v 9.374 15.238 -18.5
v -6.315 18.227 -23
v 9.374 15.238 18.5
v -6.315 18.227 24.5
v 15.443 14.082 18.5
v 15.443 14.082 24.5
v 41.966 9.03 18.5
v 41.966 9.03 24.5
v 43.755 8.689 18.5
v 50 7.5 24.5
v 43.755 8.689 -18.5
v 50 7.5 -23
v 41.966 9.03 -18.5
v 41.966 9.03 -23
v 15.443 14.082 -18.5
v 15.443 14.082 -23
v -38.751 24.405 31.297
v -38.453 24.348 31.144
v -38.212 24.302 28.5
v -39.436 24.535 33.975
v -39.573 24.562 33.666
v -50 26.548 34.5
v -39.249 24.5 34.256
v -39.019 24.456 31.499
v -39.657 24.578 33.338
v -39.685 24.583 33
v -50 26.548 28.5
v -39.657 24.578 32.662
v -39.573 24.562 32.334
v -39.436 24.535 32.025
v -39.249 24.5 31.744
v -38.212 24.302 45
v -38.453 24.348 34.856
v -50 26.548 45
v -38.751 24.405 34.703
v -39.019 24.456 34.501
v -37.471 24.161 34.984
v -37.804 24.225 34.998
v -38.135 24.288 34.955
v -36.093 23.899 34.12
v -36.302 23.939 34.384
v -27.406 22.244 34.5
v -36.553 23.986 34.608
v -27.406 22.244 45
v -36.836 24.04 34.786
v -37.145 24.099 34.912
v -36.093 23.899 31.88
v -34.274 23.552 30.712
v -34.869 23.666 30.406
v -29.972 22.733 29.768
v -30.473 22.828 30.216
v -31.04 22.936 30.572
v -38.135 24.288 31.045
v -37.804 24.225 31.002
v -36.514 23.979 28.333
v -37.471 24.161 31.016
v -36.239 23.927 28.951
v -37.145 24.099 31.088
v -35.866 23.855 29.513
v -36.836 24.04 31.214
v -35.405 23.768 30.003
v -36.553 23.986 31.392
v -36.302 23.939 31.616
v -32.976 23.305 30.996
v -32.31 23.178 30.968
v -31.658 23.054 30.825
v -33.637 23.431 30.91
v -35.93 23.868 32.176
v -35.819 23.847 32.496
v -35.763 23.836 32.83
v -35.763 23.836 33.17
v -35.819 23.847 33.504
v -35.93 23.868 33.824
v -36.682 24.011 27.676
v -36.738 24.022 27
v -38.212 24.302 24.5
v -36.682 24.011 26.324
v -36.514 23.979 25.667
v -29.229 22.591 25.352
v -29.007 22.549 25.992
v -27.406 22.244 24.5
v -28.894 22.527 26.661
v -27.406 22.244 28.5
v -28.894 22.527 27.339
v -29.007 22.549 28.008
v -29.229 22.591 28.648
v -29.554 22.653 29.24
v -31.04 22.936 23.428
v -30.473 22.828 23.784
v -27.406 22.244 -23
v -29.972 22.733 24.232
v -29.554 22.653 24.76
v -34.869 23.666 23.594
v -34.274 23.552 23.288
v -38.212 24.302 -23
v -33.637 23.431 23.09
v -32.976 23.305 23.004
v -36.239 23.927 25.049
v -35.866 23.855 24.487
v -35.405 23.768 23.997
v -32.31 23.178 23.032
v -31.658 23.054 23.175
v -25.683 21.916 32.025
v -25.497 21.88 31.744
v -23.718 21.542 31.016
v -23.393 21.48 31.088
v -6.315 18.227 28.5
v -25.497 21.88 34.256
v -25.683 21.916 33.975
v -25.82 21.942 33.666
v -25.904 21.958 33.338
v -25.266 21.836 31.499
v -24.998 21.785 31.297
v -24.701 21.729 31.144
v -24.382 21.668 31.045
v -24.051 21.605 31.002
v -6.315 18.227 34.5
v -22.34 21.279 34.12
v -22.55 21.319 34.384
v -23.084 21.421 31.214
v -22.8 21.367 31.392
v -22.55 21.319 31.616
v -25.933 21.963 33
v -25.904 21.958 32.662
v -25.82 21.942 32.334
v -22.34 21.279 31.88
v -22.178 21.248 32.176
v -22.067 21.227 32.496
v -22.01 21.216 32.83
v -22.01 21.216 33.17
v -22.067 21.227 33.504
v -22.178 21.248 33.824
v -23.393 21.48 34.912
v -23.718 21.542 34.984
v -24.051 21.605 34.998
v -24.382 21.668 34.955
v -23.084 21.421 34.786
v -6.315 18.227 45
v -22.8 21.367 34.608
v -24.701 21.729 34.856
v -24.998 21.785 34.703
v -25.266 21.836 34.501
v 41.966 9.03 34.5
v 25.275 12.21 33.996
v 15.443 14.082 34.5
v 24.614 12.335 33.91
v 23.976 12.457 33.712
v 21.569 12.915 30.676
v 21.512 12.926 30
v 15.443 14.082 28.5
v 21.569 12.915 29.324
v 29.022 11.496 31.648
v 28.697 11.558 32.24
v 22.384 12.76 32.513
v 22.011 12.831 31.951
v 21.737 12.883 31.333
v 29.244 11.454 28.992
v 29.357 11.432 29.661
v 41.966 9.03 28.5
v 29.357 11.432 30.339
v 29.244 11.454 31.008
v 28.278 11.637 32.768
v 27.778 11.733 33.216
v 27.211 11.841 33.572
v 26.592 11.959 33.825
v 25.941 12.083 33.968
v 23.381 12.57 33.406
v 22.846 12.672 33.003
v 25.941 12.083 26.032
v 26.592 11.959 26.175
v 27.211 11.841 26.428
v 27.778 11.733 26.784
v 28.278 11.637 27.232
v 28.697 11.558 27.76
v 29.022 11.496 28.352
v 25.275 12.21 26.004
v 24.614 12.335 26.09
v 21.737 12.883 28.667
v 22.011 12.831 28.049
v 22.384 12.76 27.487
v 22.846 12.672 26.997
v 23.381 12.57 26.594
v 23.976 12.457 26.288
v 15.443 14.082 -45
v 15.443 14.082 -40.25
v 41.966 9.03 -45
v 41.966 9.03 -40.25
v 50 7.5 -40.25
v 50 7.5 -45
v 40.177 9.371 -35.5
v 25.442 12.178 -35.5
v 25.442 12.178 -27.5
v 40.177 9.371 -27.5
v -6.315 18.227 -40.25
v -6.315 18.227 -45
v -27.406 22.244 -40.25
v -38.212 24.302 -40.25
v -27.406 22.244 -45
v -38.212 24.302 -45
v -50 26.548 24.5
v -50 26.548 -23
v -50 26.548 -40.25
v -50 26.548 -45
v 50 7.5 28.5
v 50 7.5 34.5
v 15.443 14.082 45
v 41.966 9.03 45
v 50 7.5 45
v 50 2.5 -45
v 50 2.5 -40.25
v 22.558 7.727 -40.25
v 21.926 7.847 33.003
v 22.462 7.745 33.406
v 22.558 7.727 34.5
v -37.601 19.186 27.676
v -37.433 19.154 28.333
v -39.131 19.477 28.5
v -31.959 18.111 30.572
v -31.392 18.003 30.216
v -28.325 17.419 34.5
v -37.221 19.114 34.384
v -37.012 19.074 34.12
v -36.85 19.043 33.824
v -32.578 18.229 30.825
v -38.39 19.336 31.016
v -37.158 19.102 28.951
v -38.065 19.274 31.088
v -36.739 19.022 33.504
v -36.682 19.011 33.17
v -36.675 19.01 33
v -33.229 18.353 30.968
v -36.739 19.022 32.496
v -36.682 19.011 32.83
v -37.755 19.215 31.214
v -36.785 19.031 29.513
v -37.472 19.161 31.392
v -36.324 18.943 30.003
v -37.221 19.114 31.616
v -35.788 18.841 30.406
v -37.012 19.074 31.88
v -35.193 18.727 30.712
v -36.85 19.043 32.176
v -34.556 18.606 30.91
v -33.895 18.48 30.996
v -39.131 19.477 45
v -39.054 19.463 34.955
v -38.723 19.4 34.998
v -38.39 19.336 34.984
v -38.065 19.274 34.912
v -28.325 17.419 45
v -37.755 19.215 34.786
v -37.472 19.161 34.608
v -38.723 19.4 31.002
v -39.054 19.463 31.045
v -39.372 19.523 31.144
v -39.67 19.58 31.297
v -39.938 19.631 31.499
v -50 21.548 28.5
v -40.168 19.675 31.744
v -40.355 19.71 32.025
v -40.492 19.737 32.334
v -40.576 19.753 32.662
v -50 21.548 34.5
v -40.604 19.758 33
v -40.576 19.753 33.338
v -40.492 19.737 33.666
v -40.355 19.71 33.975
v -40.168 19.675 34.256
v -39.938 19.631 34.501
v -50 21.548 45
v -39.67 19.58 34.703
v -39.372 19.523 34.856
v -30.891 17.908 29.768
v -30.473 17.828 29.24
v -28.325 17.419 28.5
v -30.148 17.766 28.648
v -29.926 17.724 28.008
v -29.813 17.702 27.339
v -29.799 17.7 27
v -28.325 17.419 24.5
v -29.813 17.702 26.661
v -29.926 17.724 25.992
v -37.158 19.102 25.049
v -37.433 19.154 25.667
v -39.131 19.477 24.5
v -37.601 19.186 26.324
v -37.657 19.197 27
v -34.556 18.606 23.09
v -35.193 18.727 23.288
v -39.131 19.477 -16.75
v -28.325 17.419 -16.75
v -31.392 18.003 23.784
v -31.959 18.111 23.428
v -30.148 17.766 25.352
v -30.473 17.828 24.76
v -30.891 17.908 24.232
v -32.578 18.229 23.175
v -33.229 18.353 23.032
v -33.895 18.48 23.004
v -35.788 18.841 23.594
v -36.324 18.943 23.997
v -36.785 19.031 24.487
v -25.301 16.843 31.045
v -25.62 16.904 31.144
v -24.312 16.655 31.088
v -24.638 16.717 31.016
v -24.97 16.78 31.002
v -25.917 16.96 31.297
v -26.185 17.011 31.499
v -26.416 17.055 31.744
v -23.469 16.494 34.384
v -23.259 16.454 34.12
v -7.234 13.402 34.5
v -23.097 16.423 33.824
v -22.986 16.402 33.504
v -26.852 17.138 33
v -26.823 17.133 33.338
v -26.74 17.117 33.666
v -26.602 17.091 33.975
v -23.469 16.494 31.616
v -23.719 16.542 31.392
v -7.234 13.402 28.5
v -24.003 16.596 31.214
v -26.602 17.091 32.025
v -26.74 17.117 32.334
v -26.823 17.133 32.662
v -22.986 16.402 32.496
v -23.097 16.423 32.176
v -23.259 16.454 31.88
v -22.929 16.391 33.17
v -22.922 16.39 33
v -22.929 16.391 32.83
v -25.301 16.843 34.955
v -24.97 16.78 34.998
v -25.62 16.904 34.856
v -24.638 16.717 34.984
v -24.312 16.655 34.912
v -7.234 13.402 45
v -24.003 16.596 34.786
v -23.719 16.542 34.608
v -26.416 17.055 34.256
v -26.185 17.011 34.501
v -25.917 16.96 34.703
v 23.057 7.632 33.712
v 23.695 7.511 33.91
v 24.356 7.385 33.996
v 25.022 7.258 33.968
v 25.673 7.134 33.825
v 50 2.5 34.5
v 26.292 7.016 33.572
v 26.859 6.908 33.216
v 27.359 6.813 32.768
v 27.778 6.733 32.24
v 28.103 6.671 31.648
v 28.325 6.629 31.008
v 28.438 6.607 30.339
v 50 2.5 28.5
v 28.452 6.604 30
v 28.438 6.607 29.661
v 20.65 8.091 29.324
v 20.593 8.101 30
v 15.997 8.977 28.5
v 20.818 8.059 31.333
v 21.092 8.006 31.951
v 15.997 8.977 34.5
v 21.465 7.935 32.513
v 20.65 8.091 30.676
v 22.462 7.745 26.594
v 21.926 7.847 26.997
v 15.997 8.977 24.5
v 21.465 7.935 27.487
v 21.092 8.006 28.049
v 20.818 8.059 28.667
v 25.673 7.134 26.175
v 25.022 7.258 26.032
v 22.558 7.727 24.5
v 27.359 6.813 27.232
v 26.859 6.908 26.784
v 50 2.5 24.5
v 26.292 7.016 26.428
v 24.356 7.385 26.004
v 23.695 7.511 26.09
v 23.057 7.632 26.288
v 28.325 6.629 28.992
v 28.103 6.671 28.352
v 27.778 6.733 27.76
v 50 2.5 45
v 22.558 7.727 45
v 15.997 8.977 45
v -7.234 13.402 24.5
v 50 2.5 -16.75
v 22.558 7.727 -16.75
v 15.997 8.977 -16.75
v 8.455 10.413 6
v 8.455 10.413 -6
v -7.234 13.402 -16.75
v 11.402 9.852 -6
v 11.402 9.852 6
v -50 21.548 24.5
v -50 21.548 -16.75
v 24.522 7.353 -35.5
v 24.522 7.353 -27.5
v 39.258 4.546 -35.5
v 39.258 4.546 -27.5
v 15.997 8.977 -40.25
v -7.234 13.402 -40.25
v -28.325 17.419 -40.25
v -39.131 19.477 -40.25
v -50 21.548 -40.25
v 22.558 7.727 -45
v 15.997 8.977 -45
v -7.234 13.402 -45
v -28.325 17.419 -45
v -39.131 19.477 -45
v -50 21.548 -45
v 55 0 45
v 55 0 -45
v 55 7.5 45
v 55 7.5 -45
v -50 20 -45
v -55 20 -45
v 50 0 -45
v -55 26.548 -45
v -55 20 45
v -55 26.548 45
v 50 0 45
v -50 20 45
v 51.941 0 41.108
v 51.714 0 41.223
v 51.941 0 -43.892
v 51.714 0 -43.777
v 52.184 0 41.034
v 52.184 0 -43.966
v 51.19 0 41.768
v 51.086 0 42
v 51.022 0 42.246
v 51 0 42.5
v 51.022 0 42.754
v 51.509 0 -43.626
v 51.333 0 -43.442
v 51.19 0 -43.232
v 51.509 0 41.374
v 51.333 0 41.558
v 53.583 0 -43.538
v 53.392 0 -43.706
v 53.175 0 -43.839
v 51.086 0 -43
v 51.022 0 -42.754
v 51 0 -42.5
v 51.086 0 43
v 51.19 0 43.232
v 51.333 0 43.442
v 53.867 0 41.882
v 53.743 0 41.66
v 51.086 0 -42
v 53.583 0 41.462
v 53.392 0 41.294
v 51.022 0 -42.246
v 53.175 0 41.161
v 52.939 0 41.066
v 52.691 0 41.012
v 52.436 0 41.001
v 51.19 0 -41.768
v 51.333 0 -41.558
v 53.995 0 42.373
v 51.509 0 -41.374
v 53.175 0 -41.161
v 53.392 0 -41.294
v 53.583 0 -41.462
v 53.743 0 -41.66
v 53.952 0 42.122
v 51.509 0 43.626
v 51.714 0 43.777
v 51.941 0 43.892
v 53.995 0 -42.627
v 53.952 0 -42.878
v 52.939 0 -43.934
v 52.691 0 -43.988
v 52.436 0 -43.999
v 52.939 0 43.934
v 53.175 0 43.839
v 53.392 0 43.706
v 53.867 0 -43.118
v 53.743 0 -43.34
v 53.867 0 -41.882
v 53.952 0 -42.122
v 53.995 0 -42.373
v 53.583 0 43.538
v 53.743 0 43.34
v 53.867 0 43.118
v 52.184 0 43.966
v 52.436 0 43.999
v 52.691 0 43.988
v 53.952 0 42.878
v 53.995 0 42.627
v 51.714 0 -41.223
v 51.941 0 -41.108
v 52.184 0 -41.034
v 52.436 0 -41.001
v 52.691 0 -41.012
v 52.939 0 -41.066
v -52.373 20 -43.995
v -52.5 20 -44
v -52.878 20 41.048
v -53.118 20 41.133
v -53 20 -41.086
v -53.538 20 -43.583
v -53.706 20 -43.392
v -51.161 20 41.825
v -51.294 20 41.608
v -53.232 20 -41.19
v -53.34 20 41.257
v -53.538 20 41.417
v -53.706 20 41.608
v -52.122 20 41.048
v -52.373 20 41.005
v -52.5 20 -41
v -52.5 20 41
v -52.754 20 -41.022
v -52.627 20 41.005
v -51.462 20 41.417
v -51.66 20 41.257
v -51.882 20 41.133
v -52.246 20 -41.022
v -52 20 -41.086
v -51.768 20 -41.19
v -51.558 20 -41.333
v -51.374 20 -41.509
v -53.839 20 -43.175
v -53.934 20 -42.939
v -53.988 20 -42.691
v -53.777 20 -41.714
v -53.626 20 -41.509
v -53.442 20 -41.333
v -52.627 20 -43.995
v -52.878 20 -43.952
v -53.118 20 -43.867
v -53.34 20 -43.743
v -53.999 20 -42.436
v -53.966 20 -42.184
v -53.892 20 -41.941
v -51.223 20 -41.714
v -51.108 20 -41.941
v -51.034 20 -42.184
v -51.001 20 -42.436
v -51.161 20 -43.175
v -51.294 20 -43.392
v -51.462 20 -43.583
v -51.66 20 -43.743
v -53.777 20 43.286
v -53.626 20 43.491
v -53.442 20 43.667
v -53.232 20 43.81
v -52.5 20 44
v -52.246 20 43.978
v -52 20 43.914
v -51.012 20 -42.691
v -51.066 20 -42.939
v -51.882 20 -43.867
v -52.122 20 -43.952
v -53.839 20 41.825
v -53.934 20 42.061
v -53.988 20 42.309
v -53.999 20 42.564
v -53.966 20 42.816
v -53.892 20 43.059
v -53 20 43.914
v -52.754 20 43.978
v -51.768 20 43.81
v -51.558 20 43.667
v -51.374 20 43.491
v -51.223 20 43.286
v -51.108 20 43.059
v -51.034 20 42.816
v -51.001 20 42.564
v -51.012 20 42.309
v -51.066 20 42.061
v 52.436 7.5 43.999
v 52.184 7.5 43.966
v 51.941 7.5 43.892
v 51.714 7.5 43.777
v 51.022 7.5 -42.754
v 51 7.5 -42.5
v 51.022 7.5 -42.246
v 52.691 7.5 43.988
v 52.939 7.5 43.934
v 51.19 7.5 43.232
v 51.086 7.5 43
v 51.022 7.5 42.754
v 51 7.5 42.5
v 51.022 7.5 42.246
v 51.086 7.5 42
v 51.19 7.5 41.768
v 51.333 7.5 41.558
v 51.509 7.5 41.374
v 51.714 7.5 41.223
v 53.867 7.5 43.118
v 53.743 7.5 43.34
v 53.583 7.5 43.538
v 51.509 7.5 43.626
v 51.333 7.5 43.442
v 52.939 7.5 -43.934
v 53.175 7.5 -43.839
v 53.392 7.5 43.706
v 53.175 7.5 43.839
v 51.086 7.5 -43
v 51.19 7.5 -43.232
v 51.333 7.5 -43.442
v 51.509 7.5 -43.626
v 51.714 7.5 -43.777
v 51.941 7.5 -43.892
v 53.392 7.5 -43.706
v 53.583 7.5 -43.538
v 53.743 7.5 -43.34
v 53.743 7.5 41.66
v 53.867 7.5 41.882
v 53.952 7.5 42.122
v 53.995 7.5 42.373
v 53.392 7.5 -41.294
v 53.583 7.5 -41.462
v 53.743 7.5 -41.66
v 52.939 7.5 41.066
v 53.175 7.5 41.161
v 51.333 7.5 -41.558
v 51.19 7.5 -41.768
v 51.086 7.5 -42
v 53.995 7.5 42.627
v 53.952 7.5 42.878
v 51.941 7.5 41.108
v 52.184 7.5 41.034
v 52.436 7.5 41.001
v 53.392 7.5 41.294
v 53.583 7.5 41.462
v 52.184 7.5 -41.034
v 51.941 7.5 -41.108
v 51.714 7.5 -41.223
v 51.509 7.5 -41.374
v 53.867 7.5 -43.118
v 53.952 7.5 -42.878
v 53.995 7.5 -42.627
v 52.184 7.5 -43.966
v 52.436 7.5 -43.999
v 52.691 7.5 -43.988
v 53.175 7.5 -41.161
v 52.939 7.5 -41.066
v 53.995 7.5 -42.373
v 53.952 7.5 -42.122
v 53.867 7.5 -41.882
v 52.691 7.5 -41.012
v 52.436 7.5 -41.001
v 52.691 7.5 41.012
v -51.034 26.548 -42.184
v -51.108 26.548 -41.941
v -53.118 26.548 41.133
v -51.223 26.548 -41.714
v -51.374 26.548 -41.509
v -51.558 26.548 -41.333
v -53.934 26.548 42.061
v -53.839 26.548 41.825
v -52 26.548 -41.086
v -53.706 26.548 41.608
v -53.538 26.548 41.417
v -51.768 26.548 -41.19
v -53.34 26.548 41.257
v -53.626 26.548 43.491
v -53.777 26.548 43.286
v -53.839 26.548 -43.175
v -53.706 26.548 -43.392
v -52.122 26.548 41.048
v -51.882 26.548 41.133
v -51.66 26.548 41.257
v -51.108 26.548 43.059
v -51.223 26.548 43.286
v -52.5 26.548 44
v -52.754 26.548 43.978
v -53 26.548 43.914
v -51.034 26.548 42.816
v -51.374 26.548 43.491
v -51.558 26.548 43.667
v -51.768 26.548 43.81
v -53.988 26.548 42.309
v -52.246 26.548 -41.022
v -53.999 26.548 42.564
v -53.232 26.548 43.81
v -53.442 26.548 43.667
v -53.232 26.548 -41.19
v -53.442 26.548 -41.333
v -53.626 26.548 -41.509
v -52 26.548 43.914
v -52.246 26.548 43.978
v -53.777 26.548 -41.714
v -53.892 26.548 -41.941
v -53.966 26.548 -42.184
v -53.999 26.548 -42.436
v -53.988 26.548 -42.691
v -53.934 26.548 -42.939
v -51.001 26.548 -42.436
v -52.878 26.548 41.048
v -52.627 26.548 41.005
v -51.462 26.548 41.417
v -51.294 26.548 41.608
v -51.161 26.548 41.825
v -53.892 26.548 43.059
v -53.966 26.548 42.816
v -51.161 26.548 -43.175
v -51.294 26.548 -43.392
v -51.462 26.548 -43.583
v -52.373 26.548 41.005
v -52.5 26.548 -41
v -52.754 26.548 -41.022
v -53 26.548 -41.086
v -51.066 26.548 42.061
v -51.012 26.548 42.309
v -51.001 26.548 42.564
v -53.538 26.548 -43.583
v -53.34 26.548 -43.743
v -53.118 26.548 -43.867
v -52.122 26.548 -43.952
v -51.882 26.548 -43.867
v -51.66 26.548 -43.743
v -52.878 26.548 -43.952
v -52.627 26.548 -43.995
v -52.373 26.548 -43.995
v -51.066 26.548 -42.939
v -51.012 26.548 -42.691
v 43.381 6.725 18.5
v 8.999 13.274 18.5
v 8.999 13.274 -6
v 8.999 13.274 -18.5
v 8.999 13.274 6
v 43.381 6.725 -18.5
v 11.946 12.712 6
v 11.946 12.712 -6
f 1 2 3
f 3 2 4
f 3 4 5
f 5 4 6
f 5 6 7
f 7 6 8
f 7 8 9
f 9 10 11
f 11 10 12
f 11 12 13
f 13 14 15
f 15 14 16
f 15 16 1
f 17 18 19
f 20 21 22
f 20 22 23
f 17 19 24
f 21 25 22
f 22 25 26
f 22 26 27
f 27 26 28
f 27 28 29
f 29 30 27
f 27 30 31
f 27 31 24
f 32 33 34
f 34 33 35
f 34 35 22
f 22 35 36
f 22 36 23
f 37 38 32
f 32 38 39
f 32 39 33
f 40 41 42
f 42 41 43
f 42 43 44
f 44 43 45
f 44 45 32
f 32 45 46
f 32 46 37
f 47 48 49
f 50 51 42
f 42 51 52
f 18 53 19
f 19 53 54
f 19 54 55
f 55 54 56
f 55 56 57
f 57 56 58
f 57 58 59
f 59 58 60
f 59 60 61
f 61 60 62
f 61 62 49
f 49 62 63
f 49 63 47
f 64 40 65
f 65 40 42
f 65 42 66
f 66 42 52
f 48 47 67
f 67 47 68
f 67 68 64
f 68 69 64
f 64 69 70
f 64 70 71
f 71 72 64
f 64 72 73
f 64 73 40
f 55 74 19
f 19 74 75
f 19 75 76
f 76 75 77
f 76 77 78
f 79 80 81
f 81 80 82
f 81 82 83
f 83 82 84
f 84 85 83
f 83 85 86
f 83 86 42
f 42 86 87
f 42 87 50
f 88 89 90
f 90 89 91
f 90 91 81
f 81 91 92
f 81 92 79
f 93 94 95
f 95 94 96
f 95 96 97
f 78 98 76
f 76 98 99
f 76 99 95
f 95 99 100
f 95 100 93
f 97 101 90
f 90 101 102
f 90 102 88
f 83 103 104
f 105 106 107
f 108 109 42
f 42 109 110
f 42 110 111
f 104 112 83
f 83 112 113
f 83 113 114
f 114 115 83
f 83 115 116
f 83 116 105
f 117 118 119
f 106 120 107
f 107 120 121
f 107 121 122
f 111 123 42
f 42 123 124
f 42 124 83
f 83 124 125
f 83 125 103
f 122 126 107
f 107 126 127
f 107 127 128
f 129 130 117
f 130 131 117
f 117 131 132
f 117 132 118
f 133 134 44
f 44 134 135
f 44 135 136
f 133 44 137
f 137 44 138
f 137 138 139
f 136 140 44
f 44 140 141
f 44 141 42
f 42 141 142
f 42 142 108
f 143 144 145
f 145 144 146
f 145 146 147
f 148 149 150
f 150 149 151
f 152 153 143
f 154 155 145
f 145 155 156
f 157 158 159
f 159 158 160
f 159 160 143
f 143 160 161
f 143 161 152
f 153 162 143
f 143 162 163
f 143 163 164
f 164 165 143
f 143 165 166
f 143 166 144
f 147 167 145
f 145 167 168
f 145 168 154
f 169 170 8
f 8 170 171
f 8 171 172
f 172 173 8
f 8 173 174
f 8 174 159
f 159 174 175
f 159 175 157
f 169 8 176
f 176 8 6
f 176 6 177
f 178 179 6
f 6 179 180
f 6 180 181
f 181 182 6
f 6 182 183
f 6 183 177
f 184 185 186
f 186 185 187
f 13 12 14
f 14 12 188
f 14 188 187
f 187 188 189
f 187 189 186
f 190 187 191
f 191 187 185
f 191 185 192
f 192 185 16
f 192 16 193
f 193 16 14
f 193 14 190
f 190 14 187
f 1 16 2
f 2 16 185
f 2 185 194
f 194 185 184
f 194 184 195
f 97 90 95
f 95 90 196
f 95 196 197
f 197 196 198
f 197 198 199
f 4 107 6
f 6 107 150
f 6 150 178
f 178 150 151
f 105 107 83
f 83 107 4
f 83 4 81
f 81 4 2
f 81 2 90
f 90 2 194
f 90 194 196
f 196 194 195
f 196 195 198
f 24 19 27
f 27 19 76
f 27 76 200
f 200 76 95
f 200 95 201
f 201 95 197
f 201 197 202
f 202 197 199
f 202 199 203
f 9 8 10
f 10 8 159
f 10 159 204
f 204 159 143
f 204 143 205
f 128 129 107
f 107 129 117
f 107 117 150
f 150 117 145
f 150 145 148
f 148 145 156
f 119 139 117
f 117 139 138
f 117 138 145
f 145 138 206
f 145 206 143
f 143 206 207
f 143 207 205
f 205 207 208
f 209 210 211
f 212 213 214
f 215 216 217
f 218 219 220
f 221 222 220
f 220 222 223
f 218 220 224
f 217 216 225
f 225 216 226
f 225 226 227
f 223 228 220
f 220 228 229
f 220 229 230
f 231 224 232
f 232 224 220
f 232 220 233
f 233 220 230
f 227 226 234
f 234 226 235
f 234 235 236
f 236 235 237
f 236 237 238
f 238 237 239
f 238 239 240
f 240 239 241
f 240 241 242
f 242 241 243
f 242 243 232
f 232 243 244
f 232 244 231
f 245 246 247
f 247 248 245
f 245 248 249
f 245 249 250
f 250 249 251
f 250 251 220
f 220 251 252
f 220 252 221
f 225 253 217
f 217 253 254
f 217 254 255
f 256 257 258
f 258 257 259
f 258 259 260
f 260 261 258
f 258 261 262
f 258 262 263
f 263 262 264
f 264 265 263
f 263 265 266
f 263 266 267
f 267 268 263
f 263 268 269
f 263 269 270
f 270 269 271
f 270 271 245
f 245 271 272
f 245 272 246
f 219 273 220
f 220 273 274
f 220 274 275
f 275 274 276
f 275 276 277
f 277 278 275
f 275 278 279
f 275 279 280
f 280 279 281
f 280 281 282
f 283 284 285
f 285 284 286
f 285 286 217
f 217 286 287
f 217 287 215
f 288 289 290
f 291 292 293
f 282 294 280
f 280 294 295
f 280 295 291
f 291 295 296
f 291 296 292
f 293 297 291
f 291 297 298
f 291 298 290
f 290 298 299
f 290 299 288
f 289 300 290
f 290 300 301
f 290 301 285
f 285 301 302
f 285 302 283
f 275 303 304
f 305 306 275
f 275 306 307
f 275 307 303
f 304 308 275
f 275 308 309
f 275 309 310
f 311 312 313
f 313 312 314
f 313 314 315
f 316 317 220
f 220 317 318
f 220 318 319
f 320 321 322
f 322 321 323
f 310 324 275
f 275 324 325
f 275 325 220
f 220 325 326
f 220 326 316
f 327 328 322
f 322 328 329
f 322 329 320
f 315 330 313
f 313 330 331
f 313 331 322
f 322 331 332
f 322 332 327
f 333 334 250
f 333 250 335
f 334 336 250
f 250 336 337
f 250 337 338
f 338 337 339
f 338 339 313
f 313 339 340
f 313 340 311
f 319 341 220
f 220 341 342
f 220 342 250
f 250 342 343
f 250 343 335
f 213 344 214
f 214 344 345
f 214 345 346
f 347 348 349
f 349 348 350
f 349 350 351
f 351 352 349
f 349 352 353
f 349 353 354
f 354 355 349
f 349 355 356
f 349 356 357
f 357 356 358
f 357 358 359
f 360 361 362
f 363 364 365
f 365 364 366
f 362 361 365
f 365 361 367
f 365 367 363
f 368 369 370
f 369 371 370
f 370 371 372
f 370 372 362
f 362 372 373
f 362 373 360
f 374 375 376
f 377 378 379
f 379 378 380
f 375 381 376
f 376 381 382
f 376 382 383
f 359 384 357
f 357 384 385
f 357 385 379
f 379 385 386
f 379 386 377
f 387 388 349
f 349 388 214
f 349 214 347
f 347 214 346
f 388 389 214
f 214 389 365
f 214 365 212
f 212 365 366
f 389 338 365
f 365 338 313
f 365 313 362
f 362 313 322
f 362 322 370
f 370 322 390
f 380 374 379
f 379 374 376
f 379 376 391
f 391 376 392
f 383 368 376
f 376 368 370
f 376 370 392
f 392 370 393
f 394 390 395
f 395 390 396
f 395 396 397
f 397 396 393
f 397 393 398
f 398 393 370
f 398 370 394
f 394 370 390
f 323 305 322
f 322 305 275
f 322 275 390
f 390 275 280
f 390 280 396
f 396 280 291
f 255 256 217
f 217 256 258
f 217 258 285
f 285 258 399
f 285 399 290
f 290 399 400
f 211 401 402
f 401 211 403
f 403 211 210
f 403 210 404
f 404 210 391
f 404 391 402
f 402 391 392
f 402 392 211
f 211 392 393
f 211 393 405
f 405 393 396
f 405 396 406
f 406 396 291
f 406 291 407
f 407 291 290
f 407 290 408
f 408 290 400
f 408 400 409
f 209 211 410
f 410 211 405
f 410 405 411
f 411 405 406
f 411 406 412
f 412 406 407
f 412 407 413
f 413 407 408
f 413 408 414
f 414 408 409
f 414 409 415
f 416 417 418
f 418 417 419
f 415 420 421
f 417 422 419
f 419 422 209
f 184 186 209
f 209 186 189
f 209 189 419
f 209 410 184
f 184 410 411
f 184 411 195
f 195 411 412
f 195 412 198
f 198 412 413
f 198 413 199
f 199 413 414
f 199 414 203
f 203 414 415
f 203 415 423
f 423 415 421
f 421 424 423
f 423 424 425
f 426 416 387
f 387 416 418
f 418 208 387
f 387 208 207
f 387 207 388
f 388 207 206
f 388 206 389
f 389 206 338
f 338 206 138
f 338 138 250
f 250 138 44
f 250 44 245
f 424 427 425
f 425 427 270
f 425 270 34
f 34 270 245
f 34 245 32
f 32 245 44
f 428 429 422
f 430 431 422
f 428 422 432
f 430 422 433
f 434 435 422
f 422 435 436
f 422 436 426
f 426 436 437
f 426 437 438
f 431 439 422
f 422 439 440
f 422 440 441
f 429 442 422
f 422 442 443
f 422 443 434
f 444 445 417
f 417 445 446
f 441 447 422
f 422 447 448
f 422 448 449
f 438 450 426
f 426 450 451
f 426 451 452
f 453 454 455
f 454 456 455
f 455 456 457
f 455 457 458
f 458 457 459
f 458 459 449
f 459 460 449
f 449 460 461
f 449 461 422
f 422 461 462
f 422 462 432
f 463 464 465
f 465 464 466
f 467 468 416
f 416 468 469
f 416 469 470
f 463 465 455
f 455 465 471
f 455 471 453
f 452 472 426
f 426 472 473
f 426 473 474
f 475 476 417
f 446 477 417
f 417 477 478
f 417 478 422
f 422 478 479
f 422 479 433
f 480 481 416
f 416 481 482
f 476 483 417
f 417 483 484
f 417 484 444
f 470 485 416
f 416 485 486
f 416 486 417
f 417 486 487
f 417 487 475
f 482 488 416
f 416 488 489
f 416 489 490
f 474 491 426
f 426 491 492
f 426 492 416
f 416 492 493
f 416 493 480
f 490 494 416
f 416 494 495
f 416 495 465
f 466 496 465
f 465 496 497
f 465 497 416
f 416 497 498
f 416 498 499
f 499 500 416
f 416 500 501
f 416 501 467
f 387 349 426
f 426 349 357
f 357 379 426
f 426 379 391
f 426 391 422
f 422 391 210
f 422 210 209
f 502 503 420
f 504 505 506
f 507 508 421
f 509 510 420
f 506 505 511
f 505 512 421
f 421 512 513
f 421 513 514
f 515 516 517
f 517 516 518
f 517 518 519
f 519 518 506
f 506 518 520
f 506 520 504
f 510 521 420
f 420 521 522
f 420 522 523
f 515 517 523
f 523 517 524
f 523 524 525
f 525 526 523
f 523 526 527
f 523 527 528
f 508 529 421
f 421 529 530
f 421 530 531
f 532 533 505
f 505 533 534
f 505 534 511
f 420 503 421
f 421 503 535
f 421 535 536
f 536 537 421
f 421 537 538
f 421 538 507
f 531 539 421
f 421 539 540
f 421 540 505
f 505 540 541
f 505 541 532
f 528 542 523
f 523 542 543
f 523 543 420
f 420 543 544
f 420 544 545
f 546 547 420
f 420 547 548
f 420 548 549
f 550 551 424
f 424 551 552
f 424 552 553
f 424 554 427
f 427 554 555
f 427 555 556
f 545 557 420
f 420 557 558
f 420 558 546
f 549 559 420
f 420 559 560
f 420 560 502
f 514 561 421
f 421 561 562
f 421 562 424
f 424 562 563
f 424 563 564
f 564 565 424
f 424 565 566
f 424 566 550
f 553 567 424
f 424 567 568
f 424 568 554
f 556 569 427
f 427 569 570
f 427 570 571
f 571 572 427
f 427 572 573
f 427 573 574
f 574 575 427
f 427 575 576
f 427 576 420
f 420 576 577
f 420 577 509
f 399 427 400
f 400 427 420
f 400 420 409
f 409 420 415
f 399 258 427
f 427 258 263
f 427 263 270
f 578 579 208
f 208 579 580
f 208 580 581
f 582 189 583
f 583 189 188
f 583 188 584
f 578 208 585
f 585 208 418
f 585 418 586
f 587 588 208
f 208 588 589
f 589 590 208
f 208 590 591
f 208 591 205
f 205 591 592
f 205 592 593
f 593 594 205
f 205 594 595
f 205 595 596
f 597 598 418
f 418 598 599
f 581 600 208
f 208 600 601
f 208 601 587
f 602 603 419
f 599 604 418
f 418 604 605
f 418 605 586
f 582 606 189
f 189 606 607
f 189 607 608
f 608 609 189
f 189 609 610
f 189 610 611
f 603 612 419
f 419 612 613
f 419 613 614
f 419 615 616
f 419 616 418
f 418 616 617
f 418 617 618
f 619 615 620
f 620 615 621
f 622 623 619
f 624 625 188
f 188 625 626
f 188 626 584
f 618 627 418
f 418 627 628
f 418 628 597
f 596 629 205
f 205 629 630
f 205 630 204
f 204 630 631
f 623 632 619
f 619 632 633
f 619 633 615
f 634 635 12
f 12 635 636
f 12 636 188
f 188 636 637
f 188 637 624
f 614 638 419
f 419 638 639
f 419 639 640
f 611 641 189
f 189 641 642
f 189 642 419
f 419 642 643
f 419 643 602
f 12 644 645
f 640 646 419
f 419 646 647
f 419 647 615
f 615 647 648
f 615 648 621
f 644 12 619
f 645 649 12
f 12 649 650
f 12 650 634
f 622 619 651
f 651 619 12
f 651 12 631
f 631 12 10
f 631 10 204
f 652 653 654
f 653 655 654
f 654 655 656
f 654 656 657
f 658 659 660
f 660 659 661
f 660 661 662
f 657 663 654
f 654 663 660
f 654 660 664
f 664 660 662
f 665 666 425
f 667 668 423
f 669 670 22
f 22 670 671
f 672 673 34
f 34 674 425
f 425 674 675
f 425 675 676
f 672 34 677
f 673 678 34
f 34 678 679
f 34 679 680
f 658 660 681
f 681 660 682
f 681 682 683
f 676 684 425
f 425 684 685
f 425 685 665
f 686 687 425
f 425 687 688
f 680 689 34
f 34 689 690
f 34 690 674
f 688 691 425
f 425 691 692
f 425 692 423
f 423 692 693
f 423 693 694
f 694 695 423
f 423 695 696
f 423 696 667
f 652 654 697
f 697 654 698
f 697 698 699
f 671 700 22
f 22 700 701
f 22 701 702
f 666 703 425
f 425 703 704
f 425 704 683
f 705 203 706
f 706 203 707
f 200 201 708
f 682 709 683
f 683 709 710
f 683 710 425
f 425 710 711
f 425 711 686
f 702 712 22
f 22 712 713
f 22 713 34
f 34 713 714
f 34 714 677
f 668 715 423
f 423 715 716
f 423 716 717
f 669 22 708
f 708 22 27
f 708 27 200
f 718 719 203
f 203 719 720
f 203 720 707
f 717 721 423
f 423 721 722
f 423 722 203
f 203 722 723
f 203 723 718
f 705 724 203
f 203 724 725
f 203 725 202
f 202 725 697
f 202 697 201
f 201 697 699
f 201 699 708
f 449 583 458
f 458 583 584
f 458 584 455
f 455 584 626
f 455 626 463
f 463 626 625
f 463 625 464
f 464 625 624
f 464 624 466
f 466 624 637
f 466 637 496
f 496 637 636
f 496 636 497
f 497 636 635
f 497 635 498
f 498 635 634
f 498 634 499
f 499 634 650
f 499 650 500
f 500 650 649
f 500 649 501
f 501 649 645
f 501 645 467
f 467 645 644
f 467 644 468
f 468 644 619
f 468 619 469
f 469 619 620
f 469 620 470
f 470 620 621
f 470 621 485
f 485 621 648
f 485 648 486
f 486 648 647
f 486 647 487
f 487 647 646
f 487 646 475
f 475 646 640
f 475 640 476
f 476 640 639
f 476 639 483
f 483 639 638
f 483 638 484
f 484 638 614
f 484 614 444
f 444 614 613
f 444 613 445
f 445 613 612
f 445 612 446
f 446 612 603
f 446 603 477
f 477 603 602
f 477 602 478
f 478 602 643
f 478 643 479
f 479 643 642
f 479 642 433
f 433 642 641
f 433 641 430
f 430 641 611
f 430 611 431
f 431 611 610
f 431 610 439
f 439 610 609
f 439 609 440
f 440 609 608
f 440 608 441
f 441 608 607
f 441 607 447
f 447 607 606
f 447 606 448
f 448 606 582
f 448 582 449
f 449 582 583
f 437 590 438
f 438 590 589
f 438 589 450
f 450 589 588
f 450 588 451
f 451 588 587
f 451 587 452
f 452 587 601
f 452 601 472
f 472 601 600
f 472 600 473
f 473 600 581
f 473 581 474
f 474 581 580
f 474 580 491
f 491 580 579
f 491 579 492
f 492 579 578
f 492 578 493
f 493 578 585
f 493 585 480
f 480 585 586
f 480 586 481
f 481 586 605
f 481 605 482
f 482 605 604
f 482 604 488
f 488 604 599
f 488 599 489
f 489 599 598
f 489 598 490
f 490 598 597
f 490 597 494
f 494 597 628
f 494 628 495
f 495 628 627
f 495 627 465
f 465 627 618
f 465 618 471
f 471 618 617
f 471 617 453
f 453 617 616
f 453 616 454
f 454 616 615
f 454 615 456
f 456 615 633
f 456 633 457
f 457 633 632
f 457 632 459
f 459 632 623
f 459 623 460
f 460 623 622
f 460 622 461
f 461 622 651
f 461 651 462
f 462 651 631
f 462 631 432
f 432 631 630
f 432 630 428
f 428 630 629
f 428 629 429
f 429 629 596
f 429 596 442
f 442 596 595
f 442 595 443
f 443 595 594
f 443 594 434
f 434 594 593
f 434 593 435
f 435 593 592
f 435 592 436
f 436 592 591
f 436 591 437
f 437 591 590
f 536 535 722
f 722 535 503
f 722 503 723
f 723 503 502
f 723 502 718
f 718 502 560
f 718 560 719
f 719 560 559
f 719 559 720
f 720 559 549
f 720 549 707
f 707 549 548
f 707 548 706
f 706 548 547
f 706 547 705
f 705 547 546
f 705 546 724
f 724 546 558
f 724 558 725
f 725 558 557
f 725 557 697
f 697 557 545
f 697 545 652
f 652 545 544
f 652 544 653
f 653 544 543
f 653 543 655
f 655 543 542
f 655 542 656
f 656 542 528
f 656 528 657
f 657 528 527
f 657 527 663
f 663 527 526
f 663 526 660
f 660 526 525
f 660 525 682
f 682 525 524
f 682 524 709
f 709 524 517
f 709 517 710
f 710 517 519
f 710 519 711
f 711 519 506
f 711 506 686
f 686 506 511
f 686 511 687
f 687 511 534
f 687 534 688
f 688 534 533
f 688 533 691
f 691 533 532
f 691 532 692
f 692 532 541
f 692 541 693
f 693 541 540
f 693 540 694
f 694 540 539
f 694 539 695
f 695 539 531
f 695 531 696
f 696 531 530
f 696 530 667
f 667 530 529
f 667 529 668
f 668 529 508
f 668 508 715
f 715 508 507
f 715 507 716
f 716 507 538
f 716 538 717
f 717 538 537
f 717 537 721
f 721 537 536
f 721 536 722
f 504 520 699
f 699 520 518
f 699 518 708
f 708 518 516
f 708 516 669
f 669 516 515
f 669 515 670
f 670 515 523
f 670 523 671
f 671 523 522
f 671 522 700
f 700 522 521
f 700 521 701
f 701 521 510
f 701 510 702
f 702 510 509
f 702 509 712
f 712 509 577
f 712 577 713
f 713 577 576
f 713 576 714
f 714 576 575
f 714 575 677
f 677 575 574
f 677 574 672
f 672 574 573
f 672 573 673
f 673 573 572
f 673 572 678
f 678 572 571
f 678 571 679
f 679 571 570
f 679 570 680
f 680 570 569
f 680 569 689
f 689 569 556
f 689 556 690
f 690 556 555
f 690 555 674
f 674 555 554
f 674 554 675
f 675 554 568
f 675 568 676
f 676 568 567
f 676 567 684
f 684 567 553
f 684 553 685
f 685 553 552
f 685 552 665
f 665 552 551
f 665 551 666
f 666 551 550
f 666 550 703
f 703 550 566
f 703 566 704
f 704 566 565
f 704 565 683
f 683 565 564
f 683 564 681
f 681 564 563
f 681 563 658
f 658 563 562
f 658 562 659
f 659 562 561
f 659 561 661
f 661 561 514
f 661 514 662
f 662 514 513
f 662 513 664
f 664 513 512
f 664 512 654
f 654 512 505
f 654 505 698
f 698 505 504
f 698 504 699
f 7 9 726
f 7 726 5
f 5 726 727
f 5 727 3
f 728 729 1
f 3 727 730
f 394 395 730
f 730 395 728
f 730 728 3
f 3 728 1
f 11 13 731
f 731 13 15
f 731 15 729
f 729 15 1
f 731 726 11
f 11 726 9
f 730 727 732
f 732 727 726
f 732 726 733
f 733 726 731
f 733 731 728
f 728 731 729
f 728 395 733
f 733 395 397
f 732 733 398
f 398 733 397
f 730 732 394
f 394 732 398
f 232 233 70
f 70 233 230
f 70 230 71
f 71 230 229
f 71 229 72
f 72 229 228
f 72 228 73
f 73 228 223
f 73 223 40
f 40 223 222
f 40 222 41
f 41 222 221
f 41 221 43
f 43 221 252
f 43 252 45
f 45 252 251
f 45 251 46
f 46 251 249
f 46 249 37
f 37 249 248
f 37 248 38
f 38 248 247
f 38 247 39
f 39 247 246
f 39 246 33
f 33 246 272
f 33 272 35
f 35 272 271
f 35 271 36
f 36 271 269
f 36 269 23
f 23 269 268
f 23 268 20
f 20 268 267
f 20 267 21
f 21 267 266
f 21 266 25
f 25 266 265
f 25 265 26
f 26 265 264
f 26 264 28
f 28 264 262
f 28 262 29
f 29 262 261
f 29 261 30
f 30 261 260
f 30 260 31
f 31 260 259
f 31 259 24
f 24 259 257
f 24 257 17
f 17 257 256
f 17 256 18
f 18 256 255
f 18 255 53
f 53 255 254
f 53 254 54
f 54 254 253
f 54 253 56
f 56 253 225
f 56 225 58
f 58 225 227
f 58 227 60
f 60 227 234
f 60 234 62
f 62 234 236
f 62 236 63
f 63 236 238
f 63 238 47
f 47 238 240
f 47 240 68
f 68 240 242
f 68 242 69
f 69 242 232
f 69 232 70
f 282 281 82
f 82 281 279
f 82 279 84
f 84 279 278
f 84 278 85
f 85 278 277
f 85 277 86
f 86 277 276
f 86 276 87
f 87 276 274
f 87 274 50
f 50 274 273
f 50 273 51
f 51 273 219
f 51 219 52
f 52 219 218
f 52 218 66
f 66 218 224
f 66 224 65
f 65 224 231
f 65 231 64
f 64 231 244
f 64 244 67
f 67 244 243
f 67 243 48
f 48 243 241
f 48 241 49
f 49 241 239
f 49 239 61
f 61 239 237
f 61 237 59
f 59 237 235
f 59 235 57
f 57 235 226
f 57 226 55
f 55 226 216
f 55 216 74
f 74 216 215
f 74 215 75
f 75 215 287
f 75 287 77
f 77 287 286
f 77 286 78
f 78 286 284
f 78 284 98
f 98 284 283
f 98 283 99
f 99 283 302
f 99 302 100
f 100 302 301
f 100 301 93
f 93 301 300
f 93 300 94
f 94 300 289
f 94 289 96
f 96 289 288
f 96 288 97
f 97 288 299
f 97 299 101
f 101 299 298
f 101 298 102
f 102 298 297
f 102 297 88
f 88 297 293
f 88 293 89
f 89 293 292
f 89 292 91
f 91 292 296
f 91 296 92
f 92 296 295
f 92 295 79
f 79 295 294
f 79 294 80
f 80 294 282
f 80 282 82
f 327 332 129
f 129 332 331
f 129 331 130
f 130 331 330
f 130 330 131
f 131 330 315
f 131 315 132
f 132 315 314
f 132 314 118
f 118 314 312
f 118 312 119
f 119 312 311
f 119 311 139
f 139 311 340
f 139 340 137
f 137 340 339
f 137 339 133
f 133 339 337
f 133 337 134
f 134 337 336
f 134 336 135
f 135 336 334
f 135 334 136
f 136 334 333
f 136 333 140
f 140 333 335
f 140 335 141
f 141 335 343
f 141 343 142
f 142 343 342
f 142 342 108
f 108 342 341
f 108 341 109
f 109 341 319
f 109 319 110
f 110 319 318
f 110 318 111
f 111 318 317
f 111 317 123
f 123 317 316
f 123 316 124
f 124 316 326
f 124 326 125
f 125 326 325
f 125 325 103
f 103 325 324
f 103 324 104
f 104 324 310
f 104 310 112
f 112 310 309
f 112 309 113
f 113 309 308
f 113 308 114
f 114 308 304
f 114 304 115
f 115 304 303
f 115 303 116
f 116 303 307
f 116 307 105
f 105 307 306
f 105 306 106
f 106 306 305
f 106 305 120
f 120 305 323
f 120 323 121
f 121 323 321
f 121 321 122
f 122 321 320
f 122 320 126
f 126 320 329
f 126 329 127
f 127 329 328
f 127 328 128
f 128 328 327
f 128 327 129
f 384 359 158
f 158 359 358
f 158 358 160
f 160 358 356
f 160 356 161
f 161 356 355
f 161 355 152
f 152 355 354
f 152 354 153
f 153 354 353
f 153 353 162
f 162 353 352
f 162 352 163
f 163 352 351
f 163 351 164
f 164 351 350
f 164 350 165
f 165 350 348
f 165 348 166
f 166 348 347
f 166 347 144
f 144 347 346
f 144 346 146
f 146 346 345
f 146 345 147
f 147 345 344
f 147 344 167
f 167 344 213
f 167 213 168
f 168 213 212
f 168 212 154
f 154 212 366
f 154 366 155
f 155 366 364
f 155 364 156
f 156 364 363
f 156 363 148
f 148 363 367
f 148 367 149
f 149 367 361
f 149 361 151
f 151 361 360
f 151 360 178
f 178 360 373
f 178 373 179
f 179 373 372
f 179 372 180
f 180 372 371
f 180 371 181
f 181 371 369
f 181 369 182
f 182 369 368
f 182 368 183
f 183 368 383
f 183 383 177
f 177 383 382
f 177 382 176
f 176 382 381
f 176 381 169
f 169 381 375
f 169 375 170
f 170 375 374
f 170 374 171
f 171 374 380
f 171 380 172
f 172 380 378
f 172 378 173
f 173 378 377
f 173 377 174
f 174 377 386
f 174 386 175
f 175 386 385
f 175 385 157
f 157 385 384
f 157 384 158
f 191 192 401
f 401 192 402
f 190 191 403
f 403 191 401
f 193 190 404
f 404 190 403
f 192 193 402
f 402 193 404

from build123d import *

# Parameters (mm, degrees)
SKETCH1_W           = 110
SKETCH1_H           = 90
BOSS_EXTRUDE2_DEPTH = 27.5
CUT_EXTRUDE5_DEPTH  = 90
SKETCH5_R           = 1.5
CUT_EXTRUDE7_DEPTH  = 7.5
SKETCH7_R           = 1.5
CUT_EXTRUDE9_DEPTH  = 7.5
SKETCH9_R           = 1.5
CUT_EXTRUDE11_DEPTH = 7.5
SKETCH12_R          = 1.5
CUT_EXTRUDE14_DEPTH = 7.5
CUT_EXTRUDE22_DEPTH = 2
SKETCH18_5_W        = 3
SKETCH18_5_H        = 12
CUT_EXTRUDE23_DEPTH = 5
SKETCH23_R          = 2
SKETCH23_R_2        = 4
CUT_EXTRUDE24_DEPTH = 5
SKETCH24_R          = 4
CUT_EXTRUDE25_DEPTH = 5
SKETCH25_W          = 15
SKETCH25_H          = 8
CUT_EXTRUDE26_DEPTH = 5


with BuildPart() as part:
    # Sketch1 → Boss-Extrude2 (new body)
    with BuildSketch(Plane(origin=(0, 0, 0), x_dir=(1, 0, 0), z_dir=(0, 1, 0))):
        Rectangle(SKETCH1_W, SKETCH1_H)
    extrude(amount=BOSS_EXTRUDE2_DEPTH)

    # Sketch4 → Cut-Extrude5 (cut)
    with BuildSketch(Plane.XY.offset(45)):
        Polygon((-55, 27.5), (-55, 26.547619048), (-50, 26.547619048), (50, 7.5), (55, 7.5), (55, 27.5), align=None)
        Polygon((50, 2.5), (-50, 21.547619048), (-50, 20), (-55, 20), (-55, 0), (50, 0), align=None)
    extrude(amount=-CUT_EXTRUDE5_DEPTH, mode=Mode.SUBTRACT)

    # Sketch5 → Cut-Extrude7 (cut)
    with BuildSketch(Plane(origin=(0, 7.5, 0), x_dir=(1, 0, 0), z_dir=(0, 1, 0))):
        with Locations((52.5, 42.5)):
            Circle(SKETCH5_R)
    extrude(amount=-CUT_EXTRUDE7_DEPTH, mode=Mode.SUBTRACT)

    # Sketch7 → Cut-Extrude9 (cut)
    with BuildSketch(Plane(origin=(0, 7.5, 0), x_dir=(1, 0, 0), z_dir=(0, 1, 0))):
        with Locations((52.5, -42.5)):
            Circle(SKETCH7_R)
    extrude(amount=-CUT_EXTRUDE9_DEPTH, mode=Mode.SUBTRACT)

    # Sketch9 → Cut-Extrude11 (cut)
    with BuildSketch(Plane(origin=(0, 26.547619048, 0), x_dir=(1, 0, 0), z_dir=(0, 1, 0))):
        with Locations((-52.5, 42.5)):
            Circle(SKETCH9_R)
    extrude(amount=-CUT_EXTRUDE11_DEPTH, mode=Mode.SUBTRACT)

    # Sketch12 → Cut-Extrude14 (cut)
    with BuildSketch(Plane(origin=(0, 26.547619048, 0), x_dir=(1, 0, 0), z_dir=(0, 1, 0))):
        with Locations((-52.5, -42.5)):
            Circle(SKETCH12_R)
    extrude(amount=-CUT_EXTRUDE14_DEPTH, mode=Mode.SUBTRACT)

    # Sketch18 → Cut-Extrude22 (cut)
    with BuildSketch(Plane(origin=(3.129102845, 16.427789934, 0), x_dir=(0.9823385664224747, -0.18711210788999524, 0), z_dir=(0.18711210788999524, 0.9823385664224747, 0))):
        Polygon((9.356793756, -6), (6.356793756, -6), (6.356793756, -18.5), (41.356793756, -18.5), (41.356793756, 18.5), (6.356793756, 18.5), (6.356793756, 6), (9.356793756, 6), align=None)
    extrude(amount=-CUT_EXTRUDE22_DEPTH, mode=Mode.SUBTRACT)

    # Sketch18<5> → Cut-Extrude23 (cut)
    with BuildSketch(Plane(origin=(3.129102845, 16.427789934, 0), x_dir=(0.9823385664224747, -0.18711210788999524, 0), z_dir=(0.18711210788999524, 0.9823385664224747, 0))):
        with Locations((7.856793756, 0)):
            Rectangle(SKETCH18_5_W, SKETCH18_5_H)
    extrude(amount=-CUT_EXTRUDE23_DEPTH, mode=Mode.SUBTRACT)

    # Sketch23 → Cut-Extrude24 (cut)
    with BuildSketch(Plane(origin=(3.129102845, 16.427789934, 0), x_dir=(0.9823385664224747, -0.18711210788999524, 0), z_dir=(0.18711210788999524, 0.9823385664224747, 0))):
        with Locations((-41.584309281, -33)):
            Circle(SKETCH23_R)
        with Locations((-27.584309281, -33)):
            Circle(SKETCH23_R)
        with Locations((-36.584309281, -27)):
            Circle(SKETCH23_R_2)
    extrude(amount=-CUT_EXTRUDE24_DEPTH, mode=Mode.SUBTRACT)

    # Sketch24 → Cut-Extrude25 (cut)
    with BuildSketch(Plane(origin=(3.129102845, 16.427789934, 0), x_dir=(0.9823385664224747, -0.18711210788999524, 0), z_dir=(0.18711210788999524, 0.9823385664224747, 0))):
        with Locations((22.713587512, -30)):
            Circle(SKETCH24_R)
    extrude(amount=-CUT_EXTRUDE25_DEPTH, mode=Mode.SUBTRACT)

    # Sketch25 → Cut-Extrude26 (cut)
    with BuildSketch(Plane(origin=(3.129102845, 16.427789934, 0), x_dir=(0.9823385664224747, -0.18711210788999524, 0), z_dir=(0.18711210788999524, 0.9823385664224747, 0))):
        with Locations((30.213587512, 31.5)):
            Rectangle(SKETCH25_W, SKETCH25_H)
    extrude(amount=-CUT_EXTRUDE26_DEPTH, mode=Mode.SUBTRACT)


solid = part.part
